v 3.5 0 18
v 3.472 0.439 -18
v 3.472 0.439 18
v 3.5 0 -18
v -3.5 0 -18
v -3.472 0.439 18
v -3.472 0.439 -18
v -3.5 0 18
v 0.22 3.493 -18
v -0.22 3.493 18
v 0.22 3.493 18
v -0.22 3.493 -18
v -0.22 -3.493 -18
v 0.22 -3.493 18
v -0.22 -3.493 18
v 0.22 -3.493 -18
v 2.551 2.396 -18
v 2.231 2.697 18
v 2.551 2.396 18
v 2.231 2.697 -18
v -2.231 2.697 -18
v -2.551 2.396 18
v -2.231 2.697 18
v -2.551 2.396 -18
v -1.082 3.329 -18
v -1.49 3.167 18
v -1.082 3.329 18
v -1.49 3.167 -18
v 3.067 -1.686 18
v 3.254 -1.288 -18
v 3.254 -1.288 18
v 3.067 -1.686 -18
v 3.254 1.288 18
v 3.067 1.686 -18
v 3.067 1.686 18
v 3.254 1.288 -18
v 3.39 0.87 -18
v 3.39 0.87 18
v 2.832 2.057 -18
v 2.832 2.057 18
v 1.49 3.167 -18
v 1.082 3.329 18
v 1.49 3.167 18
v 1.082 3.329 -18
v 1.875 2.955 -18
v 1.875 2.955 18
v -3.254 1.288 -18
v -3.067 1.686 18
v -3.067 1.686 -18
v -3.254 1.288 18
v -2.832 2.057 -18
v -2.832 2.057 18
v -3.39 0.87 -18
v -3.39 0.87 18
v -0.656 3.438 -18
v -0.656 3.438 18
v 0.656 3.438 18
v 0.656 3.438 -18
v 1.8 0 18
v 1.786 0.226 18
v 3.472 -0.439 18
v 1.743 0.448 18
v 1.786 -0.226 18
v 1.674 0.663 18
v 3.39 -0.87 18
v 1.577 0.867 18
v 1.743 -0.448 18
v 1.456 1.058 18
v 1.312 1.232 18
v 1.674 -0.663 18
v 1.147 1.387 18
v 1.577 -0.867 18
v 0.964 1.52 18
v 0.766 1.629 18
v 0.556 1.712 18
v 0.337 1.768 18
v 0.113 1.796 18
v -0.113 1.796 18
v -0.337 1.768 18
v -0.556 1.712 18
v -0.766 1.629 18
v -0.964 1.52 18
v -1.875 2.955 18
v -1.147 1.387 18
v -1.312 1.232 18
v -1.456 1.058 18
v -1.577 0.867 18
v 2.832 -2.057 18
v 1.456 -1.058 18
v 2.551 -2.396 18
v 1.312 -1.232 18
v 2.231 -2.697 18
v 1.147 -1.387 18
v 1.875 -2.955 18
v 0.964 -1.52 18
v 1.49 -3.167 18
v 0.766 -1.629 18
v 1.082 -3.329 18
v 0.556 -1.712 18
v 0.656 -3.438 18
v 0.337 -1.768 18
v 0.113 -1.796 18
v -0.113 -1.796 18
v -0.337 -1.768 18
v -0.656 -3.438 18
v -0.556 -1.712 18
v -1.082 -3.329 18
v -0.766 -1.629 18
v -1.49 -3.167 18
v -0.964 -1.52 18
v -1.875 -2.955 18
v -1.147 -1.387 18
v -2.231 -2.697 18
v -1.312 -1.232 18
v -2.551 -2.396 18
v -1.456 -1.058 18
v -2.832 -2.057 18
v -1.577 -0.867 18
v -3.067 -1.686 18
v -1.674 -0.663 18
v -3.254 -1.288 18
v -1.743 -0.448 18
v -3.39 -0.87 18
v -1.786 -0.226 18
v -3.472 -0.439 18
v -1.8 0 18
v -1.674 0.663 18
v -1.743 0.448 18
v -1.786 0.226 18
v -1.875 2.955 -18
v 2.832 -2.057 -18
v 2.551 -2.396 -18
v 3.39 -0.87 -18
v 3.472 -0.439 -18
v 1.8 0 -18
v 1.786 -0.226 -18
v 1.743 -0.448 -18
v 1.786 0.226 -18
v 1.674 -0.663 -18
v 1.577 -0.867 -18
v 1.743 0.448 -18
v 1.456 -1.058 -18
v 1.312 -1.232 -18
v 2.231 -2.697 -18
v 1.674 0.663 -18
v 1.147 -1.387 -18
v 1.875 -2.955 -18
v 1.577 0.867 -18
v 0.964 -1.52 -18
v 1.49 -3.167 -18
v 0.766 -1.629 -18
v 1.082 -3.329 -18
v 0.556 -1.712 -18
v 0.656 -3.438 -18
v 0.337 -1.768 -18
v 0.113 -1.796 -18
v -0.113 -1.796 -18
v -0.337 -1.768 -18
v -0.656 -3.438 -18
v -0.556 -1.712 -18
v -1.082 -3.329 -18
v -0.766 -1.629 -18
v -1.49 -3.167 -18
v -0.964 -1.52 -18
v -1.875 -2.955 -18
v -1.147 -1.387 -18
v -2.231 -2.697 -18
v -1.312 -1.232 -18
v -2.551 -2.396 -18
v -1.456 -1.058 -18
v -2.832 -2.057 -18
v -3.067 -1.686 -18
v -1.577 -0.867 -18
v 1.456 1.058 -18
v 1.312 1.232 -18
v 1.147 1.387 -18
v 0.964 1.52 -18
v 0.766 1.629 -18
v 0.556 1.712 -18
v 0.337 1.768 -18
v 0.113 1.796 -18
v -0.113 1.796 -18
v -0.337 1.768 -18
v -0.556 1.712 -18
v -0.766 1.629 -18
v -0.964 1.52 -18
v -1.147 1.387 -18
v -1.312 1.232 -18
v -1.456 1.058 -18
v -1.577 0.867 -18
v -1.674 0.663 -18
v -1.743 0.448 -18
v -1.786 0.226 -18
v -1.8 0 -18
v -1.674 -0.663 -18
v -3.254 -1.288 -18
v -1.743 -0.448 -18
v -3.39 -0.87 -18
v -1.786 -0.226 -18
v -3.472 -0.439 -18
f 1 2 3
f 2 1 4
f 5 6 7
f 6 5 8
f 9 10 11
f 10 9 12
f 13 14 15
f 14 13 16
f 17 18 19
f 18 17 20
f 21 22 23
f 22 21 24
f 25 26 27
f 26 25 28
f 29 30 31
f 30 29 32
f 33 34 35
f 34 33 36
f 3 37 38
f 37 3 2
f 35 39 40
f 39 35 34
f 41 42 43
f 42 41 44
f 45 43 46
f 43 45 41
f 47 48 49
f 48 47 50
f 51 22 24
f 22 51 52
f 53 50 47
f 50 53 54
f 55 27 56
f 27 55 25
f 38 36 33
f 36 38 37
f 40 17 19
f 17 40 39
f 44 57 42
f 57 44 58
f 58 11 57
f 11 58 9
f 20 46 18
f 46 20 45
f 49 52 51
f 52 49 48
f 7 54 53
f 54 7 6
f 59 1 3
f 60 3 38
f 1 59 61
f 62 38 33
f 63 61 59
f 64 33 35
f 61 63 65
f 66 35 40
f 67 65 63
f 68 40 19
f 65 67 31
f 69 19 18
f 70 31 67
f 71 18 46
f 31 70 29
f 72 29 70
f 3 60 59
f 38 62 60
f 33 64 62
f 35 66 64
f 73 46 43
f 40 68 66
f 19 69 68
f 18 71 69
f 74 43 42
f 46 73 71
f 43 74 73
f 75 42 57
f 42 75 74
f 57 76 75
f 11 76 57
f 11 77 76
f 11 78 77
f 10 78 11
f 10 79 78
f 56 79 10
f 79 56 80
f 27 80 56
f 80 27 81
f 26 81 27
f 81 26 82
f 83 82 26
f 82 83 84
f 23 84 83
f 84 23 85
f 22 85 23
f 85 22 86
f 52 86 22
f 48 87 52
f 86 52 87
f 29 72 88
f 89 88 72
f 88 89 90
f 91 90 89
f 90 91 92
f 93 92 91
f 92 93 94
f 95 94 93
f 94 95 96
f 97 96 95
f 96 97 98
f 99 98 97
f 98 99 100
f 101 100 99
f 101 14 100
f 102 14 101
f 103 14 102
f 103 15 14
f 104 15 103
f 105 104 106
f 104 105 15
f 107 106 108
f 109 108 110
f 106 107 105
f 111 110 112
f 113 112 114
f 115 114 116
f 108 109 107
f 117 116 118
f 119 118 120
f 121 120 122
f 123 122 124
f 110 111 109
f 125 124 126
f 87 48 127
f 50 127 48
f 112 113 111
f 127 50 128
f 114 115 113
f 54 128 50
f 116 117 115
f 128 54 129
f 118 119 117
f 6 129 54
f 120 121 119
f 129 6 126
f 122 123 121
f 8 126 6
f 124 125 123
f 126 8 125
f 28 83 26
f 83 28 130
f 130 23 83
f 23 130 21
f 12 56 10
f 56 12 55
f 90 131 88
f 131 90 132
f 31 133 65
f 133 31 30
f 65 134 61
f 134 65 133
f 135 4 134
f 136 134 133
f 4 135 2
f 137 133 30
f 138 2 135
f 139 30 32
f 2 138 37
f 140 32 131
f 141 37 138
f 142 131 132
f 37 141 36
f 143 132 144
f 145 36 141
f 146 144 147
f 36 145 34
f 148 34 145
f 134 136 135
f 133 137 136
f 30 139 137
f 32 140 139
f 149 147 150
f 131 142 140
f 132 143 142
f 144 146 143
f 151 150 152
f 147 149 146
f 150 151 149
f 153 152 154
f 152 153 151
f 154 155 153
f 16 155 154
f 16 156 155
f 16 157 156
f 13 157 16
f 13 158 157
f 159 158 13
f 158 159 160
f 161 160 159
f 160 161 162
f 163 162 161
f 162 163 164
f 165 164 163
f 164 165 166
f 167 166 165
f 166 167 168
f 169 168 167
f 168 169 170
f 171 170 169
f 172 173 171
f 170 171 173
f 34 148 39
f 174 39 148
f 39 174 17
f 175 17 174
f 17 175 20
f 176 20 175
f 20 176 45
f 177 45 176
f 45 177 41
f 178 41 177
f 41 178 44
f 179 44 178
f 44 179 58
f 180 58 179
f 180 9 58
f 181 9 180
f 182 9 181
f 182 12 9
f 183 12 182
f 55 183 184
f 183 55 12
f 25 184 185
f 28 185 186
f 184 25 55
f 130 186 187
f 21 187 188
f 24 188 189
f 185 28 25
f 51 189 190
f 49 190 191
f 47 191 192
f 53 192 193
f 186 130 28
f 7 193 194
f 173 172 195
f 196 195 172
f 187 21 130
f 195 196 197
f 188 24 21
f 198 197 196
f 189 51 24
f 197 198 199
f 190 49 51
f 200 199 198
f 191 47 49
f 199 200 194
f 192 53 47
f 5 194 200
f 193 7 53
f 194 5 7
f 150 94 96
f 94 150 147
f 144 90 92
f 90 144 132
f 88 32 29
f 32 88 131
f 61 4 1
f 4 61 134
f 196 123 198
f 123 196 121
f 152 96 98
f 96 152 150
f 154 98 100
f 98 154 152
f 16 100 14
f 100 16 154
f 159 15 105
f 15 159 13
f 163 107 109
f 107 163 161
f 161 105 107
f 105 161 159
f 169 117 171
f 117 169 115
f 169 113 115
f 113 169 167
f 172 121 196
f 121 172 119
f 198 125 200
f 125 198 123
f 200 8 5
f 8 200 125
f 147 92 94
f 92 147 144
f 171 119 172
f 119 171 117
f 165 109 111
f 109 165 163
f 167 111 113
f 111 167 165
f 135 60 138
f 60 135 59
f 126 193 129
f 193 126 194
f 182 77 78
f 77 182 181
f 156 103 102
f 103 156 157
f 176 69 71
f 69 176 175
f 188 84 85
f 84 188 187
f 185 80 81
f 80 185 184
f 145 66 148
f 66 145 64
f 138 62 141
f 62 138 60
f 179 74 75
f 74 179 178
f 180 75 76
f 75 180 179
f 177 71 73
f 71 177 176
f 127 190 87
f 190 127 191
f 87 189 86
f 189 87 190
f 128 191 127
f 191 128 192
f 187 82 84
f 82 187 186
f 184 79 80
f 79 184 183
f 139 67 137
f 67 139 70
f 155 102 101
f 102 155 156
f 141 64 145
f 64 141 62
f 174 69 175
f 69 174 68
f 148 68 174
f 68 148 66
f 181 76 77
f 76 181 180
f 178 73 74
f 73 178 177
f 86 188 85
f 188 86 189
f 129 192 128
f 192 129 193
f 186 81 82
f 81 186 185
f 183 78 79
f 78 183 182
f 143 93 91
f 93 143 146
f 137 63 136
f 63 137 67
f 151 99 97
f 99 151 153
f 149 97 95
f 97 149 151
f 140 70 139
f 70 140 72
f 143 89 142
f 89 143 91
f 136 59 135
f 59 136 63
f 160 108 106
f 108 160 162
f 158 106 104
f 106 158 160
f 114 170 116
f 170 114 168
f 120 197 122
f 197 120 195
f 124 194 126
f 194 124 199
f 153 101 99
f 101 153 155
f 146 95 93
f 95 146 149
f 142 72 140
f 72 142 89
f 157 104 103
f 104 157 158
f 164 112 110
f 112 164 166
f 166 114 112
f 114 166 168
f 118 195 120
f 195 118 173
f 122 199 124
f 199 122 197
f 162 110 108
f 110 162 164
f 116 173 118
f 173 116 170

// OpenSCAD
$fn = 50;


difference() {
	union() {
		translate(v = [0, 0, -18.0000000000]) {
			cylinder(h = 36, r = 3.5000000000);
		}
	}
	union() {
		translate(v = [0, 0, -100.0000000000]) {
			cylinder(h = 200, r = 1.8000000000);
		}
	}
}
